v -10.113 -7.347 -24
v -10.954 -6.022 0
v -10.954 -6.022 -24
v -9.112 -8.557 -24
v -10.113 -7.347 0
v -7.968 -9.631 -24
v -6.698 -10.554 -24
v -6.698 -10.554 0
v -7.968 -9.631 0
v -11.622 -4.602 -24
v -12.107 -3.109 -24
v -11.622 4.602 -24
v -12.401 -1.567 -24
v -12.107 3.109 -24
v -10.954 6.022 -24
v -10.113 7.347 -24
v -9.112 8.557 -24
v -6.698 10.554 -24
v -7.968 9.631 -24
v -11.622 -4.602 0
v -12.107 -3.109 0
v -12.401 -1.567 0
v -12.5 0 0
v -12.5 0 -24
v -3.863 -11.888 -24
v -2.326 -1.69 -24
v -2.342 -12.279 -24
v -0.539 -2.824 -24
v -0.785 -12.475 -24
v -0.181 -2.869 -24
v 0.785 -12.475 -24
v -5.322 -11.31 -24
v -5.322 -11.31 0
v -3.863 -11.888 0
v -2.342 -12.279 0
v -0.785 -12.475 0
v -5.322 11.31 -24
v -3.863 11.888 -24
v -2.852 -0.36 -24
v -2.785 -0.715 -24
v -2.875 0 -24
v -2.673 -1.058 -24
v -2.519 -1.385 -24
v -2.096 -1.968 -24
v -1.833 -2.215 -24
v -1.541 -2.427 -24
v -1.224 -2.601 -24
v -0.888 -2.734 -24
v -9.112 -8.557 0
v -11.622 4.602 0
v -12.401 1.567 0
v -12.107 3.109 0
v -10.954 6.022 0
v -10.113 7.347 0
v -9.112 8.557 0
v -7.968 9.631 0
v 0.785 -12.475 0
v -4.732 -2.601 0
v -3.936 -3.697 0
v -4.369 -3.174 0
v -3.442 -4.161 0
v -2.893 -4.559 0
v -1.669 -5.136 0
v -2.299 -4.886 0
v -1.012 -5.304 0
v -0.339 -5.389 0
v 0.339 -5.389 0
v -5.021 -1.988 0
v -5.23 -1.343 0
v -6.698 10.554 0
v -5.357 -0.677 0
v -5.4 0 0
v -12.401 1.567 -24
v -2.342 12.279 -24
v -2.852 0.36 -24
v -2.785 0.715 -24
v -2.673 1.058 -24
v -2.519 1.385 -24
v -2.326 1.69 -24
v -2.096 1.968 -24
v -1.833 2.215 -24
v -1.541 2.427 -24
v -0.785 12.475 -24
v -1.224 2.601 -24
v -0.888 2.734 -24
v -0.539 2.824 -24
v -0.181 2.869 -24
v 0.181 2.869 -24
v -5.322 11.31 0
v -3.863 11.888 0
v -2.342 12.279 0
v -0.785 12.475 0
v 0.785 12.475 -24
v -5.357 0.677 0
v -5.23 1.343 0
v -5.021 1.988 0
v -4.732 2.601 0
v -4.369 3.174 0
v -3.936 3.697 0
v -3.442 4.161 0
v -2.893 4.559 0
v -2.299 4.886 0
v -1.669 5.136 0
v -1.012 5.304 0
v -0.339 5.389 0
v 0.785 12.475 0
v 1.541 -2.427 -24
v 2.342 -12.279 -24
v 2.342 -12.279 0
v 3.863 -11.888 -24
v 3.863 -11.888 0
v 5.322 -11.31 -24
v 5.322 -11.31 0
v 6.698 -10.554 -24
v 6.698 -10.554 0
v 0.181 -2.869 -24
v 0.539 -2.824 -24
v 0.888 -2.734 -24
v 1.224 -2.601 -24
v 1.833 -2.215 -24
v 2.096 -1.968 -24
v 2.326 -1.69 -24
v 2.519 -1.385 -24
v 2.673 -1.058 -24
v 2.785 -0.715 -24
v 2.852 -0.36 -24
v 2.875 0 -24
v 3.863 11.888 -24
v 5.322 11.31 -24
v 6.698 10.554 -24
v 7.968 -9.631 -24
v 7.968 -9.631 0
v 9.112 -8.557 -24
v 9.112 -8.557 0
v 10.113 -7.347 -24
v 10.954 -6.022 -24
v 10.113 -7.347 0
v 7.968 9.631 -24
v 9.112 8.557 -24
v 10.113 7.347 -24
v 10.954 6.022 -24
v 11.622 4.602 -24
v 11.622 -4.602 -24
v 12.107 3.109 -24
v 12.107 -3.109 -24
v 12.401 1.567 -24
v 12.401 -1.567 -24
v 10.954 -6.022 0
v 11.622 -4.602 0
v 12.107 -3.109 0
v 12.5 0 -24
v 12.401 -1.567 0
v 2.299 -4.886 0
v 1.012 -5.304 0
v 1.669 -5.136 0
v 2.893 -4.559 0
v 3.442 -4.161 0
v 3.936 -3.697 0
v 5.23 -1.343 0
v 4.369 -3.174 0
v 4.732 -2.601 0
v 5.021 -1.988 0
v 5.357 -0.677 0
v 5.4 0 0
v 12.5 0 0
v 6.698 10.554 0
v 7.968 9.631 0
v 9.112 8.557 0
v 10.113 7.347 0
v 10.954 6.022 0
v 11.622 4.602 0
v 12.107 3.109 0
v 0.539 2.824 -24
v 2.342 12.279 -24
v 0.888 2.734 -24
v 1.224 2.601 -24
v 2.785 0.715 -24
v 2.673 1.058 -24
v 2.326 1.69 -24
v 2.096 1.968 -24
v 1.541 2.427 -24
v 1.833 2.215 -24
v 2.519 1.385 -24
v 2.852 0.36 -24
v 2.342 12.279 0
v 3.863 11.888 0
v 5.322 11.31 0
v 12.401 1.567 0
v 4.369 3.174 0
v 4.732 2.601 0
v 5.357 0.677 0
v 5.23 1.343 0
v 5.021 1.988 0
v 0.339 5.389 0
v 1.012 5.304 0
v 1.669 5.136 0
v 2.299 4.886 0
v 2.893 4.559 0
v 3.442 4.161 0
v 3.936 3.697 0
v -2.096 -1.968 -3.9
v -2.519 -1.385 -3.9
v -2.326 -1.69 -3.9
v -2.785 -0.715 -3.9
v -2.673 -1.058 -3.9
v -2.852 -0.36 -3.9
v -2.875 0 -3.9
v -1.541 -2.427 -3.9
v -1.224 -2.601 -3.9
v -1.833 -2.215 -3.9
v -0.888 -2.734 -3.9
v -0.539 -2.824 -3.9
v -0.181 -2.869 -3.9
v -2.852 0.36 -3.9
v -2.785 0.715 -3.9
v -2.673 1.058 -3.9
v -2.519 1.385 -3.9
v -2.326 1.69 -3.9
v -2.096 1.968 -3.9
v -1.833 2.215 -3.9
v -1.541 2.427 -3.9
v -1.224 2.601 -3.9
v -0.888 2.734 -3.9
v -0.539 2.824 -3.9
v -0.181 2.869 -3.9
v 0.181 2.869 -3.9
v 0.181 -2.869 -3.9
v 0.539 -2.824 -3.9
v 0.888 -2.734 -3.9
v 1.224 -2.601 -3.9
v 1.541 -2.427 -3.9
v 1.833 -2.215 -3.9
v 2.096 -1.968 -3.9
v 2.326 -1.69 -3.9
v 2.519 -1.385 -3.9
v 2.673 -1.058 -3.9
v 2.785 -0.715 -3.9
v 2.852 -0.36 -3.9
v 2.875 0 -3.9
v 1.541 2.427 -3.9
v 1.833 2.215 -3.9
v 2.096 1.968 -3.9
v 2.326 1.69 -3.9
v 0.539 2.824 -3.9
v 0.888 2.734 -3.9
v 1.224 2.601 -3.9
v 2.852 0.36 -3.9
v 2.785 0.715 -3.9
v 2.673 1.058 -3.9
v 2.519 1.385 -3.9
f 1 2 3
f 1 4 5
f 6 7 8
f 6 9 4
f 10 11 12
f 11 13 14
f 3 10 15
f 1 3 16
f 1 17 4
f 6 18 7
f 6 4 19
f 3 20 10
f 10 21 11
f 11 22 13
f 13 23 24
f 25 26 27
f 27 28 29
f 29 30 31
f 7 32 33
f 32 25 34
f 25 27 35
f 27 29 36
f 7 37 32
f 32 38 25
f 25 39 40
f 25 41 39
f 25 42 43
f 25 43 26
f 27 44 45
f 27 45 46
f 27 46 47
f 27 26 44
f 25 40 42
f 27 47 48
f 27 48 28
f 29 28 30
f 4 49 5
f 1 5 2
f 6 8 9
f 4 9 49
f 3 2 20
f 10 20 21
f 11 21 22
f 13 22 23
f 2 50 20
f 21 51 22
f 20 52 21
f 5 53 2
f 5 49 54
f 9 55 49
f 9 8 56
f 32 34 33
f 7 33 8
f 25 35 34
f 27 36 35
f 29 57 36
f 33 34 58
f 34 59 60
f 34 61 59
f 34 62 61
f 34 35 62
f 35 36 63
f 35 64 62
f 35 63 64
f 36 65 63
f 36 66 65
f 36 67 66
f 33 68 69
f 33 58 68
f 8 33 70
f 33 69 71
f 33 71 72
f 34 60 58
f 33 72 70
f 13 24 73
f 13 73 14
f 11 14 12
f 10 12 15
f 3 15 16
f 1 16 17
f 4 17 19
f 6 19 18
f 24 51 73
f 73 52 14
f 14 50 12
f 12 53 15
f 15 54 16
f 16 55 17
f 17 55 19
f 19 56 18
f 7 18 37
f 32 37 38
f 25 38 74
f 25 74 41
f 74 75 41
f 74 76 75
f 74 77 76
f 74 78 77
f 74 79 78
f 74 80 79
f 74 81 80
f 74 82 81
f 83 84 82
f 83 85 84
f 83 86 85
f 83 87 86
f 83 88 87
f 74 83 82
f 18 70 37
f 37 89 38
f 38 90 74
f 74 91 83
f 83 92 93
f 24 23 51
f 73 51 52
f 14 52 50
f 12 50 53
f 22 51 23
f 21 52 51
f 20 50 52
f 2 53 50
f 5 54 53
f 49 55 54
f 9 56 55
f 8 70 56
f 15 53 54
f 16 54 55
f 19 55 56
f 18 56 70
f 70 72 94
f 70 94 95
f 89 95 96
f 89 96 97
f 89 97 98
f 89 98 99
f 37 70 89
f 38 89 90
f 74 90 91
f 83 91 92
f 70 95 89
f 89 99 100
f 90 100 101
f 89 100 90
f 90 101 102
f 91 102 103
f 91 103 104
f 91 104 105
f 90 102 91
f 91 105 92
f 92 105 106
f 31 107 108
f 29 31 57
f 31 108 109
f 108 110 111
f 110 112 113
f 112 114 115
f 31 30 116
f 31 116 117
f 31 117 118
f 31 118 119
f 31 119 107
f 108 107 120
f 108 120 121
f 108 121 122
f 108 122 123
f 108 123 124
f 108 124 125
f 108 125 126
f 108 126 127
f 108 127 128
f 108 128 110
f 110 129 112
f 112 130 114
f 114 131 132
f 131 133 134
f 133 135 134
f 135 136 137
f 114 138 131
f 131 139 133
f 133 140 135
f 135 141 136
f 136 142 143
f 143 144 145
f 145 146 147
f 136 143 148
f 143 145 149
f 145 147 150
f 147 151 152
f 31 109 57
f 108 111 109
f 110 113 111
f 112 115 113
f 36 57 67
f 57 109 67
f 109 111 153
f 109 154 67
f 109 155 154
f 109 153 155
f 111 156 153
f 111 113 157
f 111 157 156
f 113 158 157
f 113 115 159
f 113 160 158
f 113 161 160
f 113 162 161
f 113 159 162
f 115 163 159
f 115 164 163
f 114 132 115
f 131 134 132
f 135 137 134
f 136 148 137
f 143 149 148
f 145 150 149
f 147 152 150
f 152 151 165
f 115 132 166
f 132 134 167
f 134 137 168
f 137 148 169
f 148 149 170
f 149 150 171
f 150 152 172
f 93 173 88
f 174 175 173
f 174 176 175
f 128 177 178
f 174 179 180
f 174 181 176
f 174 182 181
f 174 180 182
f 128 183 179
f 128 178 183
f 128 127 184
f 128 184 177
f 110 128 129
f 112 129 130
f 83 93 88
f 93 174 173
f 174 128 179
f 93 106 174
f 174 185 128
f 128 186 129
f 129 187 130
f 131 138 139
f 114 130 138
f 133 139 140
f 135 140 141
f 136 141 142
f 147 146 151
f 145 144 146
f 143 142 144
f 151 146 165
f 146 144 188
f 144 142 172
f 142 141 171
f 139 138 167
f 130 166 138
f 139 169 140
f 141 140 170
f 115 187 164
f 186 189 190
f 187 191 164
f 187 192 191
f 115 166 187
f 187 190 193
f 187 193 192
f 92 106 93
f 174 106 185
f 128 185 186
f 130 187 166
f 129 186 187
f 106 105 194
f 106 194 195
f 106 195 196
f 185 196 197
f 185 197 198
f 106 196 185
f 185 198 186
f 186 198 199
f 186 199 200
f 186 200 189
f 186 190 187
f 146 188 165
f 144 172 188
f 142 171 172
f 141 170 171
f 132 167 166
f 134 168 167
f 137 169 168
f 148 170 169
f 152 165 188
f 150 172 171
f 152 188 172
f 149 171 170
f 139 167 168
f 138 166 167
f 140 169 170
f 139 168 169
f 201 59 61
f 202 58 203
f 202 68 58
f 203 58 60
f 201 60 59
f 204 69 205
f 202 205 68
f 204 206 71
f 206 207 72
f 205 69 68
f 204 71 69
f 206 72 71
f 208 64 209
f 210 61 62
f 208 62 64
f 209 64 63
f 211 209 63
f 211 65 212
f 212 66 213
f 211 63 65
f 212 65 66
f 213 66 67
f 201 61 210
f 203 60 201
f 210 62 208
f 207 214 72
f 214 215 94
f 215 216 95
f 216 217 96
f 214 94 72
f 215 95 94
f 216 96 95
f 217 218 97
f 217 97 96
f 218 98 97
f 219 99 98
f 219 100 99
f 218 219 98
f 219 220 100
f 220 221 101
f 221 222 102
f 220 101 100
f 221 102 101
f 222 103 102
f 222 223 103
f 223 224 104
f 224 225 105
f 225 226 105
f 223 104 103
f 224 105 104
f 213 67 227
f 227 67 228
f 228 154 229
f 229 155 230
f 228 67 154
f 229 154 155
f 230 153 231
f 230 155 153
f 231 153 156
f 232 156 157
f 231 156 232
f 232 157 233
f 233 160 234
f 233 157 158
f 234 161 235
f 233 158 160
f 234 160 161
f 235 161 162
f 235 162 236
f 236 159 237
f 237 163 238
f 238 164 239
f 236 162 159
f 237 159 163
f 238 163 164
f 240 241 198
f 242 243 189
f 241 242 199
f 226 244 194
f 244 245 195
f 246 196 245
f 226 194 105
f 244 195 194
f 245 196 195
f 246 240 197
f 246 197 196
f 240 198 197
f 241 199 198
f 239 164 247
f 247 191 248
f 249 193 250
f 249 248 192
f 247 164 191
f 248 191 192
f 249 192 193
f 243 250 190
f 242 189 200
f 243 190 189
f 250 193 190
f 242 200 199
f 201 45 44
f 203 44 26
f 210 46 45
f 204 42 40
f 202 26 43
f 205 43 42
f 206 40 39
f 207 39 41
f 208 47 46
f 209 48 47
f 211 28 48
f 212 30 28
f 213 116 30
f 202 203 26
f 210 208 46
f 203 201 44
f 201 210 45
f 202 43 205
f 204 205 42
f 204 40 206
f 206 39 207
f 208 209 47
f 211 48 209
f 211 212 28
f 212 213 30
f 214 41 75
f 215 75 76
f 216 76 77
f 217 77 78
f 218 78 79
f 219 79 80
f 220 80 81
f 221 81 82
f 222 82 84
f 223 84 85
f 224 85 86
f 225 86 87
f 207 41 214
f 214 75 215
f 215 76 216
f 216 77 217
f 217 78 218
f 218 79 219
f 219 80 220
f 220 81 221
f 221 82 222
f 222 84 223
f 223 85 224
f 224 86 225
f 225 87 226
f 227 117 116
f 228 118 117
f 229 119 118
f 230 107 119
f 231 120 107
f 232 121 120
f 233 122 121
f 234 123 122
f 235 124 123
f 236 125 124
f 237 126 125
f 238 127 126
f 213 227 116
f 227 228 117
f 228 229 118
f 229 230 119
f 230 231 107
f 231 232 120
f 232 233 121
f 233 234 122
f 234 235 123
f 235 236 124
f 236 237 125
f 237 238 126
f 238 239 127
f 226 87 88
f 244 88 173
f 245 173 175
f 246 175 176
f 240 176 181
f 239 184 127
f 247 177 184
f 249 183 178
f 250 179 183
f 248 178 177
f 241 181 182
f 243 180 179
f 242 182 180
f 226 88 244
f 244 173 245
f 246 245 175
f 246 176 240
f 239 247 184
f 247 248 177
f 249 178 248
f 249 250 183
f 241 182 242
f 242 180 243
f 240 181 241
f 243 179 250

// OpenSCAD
$fn = 50;


difference() {
	union() {
		translate(v = [0, 0, -24.0000000000]) {
			cylinder(h = 24, r = 12.5000000000);
		}
		#translate(v = [0, 0, -27.0000000000]) {
			cylinder(h = 27, r = 2.8750000000);
		}
	}
	union() {
		translate(v = [0, 0, 0]) {
			rotate(a = [0, 0, 0]) {
				difference() {
					union() {
						translate(v = [0, 0, -27.0000000000]) {
							cylinder(h = 27, r = 2.6000000000);
						}
						translate(v = [0, 0, -3.9000000000]) {
							cylinder(h = 3.9000000000, r1 = 2.8750000000, r2 = 5.4000000000);
						}
						translate(v = [0, 0, -27.0000000000]) {
							cylinder(h = 27, r = 2.8750000000);
						}
						translate(v = [0, 0, -27.0000000000]) {
							cylinder(h = 27, r = 2.6000000000);
						}
					}
					union();
				}
			}
		}
	}
}
